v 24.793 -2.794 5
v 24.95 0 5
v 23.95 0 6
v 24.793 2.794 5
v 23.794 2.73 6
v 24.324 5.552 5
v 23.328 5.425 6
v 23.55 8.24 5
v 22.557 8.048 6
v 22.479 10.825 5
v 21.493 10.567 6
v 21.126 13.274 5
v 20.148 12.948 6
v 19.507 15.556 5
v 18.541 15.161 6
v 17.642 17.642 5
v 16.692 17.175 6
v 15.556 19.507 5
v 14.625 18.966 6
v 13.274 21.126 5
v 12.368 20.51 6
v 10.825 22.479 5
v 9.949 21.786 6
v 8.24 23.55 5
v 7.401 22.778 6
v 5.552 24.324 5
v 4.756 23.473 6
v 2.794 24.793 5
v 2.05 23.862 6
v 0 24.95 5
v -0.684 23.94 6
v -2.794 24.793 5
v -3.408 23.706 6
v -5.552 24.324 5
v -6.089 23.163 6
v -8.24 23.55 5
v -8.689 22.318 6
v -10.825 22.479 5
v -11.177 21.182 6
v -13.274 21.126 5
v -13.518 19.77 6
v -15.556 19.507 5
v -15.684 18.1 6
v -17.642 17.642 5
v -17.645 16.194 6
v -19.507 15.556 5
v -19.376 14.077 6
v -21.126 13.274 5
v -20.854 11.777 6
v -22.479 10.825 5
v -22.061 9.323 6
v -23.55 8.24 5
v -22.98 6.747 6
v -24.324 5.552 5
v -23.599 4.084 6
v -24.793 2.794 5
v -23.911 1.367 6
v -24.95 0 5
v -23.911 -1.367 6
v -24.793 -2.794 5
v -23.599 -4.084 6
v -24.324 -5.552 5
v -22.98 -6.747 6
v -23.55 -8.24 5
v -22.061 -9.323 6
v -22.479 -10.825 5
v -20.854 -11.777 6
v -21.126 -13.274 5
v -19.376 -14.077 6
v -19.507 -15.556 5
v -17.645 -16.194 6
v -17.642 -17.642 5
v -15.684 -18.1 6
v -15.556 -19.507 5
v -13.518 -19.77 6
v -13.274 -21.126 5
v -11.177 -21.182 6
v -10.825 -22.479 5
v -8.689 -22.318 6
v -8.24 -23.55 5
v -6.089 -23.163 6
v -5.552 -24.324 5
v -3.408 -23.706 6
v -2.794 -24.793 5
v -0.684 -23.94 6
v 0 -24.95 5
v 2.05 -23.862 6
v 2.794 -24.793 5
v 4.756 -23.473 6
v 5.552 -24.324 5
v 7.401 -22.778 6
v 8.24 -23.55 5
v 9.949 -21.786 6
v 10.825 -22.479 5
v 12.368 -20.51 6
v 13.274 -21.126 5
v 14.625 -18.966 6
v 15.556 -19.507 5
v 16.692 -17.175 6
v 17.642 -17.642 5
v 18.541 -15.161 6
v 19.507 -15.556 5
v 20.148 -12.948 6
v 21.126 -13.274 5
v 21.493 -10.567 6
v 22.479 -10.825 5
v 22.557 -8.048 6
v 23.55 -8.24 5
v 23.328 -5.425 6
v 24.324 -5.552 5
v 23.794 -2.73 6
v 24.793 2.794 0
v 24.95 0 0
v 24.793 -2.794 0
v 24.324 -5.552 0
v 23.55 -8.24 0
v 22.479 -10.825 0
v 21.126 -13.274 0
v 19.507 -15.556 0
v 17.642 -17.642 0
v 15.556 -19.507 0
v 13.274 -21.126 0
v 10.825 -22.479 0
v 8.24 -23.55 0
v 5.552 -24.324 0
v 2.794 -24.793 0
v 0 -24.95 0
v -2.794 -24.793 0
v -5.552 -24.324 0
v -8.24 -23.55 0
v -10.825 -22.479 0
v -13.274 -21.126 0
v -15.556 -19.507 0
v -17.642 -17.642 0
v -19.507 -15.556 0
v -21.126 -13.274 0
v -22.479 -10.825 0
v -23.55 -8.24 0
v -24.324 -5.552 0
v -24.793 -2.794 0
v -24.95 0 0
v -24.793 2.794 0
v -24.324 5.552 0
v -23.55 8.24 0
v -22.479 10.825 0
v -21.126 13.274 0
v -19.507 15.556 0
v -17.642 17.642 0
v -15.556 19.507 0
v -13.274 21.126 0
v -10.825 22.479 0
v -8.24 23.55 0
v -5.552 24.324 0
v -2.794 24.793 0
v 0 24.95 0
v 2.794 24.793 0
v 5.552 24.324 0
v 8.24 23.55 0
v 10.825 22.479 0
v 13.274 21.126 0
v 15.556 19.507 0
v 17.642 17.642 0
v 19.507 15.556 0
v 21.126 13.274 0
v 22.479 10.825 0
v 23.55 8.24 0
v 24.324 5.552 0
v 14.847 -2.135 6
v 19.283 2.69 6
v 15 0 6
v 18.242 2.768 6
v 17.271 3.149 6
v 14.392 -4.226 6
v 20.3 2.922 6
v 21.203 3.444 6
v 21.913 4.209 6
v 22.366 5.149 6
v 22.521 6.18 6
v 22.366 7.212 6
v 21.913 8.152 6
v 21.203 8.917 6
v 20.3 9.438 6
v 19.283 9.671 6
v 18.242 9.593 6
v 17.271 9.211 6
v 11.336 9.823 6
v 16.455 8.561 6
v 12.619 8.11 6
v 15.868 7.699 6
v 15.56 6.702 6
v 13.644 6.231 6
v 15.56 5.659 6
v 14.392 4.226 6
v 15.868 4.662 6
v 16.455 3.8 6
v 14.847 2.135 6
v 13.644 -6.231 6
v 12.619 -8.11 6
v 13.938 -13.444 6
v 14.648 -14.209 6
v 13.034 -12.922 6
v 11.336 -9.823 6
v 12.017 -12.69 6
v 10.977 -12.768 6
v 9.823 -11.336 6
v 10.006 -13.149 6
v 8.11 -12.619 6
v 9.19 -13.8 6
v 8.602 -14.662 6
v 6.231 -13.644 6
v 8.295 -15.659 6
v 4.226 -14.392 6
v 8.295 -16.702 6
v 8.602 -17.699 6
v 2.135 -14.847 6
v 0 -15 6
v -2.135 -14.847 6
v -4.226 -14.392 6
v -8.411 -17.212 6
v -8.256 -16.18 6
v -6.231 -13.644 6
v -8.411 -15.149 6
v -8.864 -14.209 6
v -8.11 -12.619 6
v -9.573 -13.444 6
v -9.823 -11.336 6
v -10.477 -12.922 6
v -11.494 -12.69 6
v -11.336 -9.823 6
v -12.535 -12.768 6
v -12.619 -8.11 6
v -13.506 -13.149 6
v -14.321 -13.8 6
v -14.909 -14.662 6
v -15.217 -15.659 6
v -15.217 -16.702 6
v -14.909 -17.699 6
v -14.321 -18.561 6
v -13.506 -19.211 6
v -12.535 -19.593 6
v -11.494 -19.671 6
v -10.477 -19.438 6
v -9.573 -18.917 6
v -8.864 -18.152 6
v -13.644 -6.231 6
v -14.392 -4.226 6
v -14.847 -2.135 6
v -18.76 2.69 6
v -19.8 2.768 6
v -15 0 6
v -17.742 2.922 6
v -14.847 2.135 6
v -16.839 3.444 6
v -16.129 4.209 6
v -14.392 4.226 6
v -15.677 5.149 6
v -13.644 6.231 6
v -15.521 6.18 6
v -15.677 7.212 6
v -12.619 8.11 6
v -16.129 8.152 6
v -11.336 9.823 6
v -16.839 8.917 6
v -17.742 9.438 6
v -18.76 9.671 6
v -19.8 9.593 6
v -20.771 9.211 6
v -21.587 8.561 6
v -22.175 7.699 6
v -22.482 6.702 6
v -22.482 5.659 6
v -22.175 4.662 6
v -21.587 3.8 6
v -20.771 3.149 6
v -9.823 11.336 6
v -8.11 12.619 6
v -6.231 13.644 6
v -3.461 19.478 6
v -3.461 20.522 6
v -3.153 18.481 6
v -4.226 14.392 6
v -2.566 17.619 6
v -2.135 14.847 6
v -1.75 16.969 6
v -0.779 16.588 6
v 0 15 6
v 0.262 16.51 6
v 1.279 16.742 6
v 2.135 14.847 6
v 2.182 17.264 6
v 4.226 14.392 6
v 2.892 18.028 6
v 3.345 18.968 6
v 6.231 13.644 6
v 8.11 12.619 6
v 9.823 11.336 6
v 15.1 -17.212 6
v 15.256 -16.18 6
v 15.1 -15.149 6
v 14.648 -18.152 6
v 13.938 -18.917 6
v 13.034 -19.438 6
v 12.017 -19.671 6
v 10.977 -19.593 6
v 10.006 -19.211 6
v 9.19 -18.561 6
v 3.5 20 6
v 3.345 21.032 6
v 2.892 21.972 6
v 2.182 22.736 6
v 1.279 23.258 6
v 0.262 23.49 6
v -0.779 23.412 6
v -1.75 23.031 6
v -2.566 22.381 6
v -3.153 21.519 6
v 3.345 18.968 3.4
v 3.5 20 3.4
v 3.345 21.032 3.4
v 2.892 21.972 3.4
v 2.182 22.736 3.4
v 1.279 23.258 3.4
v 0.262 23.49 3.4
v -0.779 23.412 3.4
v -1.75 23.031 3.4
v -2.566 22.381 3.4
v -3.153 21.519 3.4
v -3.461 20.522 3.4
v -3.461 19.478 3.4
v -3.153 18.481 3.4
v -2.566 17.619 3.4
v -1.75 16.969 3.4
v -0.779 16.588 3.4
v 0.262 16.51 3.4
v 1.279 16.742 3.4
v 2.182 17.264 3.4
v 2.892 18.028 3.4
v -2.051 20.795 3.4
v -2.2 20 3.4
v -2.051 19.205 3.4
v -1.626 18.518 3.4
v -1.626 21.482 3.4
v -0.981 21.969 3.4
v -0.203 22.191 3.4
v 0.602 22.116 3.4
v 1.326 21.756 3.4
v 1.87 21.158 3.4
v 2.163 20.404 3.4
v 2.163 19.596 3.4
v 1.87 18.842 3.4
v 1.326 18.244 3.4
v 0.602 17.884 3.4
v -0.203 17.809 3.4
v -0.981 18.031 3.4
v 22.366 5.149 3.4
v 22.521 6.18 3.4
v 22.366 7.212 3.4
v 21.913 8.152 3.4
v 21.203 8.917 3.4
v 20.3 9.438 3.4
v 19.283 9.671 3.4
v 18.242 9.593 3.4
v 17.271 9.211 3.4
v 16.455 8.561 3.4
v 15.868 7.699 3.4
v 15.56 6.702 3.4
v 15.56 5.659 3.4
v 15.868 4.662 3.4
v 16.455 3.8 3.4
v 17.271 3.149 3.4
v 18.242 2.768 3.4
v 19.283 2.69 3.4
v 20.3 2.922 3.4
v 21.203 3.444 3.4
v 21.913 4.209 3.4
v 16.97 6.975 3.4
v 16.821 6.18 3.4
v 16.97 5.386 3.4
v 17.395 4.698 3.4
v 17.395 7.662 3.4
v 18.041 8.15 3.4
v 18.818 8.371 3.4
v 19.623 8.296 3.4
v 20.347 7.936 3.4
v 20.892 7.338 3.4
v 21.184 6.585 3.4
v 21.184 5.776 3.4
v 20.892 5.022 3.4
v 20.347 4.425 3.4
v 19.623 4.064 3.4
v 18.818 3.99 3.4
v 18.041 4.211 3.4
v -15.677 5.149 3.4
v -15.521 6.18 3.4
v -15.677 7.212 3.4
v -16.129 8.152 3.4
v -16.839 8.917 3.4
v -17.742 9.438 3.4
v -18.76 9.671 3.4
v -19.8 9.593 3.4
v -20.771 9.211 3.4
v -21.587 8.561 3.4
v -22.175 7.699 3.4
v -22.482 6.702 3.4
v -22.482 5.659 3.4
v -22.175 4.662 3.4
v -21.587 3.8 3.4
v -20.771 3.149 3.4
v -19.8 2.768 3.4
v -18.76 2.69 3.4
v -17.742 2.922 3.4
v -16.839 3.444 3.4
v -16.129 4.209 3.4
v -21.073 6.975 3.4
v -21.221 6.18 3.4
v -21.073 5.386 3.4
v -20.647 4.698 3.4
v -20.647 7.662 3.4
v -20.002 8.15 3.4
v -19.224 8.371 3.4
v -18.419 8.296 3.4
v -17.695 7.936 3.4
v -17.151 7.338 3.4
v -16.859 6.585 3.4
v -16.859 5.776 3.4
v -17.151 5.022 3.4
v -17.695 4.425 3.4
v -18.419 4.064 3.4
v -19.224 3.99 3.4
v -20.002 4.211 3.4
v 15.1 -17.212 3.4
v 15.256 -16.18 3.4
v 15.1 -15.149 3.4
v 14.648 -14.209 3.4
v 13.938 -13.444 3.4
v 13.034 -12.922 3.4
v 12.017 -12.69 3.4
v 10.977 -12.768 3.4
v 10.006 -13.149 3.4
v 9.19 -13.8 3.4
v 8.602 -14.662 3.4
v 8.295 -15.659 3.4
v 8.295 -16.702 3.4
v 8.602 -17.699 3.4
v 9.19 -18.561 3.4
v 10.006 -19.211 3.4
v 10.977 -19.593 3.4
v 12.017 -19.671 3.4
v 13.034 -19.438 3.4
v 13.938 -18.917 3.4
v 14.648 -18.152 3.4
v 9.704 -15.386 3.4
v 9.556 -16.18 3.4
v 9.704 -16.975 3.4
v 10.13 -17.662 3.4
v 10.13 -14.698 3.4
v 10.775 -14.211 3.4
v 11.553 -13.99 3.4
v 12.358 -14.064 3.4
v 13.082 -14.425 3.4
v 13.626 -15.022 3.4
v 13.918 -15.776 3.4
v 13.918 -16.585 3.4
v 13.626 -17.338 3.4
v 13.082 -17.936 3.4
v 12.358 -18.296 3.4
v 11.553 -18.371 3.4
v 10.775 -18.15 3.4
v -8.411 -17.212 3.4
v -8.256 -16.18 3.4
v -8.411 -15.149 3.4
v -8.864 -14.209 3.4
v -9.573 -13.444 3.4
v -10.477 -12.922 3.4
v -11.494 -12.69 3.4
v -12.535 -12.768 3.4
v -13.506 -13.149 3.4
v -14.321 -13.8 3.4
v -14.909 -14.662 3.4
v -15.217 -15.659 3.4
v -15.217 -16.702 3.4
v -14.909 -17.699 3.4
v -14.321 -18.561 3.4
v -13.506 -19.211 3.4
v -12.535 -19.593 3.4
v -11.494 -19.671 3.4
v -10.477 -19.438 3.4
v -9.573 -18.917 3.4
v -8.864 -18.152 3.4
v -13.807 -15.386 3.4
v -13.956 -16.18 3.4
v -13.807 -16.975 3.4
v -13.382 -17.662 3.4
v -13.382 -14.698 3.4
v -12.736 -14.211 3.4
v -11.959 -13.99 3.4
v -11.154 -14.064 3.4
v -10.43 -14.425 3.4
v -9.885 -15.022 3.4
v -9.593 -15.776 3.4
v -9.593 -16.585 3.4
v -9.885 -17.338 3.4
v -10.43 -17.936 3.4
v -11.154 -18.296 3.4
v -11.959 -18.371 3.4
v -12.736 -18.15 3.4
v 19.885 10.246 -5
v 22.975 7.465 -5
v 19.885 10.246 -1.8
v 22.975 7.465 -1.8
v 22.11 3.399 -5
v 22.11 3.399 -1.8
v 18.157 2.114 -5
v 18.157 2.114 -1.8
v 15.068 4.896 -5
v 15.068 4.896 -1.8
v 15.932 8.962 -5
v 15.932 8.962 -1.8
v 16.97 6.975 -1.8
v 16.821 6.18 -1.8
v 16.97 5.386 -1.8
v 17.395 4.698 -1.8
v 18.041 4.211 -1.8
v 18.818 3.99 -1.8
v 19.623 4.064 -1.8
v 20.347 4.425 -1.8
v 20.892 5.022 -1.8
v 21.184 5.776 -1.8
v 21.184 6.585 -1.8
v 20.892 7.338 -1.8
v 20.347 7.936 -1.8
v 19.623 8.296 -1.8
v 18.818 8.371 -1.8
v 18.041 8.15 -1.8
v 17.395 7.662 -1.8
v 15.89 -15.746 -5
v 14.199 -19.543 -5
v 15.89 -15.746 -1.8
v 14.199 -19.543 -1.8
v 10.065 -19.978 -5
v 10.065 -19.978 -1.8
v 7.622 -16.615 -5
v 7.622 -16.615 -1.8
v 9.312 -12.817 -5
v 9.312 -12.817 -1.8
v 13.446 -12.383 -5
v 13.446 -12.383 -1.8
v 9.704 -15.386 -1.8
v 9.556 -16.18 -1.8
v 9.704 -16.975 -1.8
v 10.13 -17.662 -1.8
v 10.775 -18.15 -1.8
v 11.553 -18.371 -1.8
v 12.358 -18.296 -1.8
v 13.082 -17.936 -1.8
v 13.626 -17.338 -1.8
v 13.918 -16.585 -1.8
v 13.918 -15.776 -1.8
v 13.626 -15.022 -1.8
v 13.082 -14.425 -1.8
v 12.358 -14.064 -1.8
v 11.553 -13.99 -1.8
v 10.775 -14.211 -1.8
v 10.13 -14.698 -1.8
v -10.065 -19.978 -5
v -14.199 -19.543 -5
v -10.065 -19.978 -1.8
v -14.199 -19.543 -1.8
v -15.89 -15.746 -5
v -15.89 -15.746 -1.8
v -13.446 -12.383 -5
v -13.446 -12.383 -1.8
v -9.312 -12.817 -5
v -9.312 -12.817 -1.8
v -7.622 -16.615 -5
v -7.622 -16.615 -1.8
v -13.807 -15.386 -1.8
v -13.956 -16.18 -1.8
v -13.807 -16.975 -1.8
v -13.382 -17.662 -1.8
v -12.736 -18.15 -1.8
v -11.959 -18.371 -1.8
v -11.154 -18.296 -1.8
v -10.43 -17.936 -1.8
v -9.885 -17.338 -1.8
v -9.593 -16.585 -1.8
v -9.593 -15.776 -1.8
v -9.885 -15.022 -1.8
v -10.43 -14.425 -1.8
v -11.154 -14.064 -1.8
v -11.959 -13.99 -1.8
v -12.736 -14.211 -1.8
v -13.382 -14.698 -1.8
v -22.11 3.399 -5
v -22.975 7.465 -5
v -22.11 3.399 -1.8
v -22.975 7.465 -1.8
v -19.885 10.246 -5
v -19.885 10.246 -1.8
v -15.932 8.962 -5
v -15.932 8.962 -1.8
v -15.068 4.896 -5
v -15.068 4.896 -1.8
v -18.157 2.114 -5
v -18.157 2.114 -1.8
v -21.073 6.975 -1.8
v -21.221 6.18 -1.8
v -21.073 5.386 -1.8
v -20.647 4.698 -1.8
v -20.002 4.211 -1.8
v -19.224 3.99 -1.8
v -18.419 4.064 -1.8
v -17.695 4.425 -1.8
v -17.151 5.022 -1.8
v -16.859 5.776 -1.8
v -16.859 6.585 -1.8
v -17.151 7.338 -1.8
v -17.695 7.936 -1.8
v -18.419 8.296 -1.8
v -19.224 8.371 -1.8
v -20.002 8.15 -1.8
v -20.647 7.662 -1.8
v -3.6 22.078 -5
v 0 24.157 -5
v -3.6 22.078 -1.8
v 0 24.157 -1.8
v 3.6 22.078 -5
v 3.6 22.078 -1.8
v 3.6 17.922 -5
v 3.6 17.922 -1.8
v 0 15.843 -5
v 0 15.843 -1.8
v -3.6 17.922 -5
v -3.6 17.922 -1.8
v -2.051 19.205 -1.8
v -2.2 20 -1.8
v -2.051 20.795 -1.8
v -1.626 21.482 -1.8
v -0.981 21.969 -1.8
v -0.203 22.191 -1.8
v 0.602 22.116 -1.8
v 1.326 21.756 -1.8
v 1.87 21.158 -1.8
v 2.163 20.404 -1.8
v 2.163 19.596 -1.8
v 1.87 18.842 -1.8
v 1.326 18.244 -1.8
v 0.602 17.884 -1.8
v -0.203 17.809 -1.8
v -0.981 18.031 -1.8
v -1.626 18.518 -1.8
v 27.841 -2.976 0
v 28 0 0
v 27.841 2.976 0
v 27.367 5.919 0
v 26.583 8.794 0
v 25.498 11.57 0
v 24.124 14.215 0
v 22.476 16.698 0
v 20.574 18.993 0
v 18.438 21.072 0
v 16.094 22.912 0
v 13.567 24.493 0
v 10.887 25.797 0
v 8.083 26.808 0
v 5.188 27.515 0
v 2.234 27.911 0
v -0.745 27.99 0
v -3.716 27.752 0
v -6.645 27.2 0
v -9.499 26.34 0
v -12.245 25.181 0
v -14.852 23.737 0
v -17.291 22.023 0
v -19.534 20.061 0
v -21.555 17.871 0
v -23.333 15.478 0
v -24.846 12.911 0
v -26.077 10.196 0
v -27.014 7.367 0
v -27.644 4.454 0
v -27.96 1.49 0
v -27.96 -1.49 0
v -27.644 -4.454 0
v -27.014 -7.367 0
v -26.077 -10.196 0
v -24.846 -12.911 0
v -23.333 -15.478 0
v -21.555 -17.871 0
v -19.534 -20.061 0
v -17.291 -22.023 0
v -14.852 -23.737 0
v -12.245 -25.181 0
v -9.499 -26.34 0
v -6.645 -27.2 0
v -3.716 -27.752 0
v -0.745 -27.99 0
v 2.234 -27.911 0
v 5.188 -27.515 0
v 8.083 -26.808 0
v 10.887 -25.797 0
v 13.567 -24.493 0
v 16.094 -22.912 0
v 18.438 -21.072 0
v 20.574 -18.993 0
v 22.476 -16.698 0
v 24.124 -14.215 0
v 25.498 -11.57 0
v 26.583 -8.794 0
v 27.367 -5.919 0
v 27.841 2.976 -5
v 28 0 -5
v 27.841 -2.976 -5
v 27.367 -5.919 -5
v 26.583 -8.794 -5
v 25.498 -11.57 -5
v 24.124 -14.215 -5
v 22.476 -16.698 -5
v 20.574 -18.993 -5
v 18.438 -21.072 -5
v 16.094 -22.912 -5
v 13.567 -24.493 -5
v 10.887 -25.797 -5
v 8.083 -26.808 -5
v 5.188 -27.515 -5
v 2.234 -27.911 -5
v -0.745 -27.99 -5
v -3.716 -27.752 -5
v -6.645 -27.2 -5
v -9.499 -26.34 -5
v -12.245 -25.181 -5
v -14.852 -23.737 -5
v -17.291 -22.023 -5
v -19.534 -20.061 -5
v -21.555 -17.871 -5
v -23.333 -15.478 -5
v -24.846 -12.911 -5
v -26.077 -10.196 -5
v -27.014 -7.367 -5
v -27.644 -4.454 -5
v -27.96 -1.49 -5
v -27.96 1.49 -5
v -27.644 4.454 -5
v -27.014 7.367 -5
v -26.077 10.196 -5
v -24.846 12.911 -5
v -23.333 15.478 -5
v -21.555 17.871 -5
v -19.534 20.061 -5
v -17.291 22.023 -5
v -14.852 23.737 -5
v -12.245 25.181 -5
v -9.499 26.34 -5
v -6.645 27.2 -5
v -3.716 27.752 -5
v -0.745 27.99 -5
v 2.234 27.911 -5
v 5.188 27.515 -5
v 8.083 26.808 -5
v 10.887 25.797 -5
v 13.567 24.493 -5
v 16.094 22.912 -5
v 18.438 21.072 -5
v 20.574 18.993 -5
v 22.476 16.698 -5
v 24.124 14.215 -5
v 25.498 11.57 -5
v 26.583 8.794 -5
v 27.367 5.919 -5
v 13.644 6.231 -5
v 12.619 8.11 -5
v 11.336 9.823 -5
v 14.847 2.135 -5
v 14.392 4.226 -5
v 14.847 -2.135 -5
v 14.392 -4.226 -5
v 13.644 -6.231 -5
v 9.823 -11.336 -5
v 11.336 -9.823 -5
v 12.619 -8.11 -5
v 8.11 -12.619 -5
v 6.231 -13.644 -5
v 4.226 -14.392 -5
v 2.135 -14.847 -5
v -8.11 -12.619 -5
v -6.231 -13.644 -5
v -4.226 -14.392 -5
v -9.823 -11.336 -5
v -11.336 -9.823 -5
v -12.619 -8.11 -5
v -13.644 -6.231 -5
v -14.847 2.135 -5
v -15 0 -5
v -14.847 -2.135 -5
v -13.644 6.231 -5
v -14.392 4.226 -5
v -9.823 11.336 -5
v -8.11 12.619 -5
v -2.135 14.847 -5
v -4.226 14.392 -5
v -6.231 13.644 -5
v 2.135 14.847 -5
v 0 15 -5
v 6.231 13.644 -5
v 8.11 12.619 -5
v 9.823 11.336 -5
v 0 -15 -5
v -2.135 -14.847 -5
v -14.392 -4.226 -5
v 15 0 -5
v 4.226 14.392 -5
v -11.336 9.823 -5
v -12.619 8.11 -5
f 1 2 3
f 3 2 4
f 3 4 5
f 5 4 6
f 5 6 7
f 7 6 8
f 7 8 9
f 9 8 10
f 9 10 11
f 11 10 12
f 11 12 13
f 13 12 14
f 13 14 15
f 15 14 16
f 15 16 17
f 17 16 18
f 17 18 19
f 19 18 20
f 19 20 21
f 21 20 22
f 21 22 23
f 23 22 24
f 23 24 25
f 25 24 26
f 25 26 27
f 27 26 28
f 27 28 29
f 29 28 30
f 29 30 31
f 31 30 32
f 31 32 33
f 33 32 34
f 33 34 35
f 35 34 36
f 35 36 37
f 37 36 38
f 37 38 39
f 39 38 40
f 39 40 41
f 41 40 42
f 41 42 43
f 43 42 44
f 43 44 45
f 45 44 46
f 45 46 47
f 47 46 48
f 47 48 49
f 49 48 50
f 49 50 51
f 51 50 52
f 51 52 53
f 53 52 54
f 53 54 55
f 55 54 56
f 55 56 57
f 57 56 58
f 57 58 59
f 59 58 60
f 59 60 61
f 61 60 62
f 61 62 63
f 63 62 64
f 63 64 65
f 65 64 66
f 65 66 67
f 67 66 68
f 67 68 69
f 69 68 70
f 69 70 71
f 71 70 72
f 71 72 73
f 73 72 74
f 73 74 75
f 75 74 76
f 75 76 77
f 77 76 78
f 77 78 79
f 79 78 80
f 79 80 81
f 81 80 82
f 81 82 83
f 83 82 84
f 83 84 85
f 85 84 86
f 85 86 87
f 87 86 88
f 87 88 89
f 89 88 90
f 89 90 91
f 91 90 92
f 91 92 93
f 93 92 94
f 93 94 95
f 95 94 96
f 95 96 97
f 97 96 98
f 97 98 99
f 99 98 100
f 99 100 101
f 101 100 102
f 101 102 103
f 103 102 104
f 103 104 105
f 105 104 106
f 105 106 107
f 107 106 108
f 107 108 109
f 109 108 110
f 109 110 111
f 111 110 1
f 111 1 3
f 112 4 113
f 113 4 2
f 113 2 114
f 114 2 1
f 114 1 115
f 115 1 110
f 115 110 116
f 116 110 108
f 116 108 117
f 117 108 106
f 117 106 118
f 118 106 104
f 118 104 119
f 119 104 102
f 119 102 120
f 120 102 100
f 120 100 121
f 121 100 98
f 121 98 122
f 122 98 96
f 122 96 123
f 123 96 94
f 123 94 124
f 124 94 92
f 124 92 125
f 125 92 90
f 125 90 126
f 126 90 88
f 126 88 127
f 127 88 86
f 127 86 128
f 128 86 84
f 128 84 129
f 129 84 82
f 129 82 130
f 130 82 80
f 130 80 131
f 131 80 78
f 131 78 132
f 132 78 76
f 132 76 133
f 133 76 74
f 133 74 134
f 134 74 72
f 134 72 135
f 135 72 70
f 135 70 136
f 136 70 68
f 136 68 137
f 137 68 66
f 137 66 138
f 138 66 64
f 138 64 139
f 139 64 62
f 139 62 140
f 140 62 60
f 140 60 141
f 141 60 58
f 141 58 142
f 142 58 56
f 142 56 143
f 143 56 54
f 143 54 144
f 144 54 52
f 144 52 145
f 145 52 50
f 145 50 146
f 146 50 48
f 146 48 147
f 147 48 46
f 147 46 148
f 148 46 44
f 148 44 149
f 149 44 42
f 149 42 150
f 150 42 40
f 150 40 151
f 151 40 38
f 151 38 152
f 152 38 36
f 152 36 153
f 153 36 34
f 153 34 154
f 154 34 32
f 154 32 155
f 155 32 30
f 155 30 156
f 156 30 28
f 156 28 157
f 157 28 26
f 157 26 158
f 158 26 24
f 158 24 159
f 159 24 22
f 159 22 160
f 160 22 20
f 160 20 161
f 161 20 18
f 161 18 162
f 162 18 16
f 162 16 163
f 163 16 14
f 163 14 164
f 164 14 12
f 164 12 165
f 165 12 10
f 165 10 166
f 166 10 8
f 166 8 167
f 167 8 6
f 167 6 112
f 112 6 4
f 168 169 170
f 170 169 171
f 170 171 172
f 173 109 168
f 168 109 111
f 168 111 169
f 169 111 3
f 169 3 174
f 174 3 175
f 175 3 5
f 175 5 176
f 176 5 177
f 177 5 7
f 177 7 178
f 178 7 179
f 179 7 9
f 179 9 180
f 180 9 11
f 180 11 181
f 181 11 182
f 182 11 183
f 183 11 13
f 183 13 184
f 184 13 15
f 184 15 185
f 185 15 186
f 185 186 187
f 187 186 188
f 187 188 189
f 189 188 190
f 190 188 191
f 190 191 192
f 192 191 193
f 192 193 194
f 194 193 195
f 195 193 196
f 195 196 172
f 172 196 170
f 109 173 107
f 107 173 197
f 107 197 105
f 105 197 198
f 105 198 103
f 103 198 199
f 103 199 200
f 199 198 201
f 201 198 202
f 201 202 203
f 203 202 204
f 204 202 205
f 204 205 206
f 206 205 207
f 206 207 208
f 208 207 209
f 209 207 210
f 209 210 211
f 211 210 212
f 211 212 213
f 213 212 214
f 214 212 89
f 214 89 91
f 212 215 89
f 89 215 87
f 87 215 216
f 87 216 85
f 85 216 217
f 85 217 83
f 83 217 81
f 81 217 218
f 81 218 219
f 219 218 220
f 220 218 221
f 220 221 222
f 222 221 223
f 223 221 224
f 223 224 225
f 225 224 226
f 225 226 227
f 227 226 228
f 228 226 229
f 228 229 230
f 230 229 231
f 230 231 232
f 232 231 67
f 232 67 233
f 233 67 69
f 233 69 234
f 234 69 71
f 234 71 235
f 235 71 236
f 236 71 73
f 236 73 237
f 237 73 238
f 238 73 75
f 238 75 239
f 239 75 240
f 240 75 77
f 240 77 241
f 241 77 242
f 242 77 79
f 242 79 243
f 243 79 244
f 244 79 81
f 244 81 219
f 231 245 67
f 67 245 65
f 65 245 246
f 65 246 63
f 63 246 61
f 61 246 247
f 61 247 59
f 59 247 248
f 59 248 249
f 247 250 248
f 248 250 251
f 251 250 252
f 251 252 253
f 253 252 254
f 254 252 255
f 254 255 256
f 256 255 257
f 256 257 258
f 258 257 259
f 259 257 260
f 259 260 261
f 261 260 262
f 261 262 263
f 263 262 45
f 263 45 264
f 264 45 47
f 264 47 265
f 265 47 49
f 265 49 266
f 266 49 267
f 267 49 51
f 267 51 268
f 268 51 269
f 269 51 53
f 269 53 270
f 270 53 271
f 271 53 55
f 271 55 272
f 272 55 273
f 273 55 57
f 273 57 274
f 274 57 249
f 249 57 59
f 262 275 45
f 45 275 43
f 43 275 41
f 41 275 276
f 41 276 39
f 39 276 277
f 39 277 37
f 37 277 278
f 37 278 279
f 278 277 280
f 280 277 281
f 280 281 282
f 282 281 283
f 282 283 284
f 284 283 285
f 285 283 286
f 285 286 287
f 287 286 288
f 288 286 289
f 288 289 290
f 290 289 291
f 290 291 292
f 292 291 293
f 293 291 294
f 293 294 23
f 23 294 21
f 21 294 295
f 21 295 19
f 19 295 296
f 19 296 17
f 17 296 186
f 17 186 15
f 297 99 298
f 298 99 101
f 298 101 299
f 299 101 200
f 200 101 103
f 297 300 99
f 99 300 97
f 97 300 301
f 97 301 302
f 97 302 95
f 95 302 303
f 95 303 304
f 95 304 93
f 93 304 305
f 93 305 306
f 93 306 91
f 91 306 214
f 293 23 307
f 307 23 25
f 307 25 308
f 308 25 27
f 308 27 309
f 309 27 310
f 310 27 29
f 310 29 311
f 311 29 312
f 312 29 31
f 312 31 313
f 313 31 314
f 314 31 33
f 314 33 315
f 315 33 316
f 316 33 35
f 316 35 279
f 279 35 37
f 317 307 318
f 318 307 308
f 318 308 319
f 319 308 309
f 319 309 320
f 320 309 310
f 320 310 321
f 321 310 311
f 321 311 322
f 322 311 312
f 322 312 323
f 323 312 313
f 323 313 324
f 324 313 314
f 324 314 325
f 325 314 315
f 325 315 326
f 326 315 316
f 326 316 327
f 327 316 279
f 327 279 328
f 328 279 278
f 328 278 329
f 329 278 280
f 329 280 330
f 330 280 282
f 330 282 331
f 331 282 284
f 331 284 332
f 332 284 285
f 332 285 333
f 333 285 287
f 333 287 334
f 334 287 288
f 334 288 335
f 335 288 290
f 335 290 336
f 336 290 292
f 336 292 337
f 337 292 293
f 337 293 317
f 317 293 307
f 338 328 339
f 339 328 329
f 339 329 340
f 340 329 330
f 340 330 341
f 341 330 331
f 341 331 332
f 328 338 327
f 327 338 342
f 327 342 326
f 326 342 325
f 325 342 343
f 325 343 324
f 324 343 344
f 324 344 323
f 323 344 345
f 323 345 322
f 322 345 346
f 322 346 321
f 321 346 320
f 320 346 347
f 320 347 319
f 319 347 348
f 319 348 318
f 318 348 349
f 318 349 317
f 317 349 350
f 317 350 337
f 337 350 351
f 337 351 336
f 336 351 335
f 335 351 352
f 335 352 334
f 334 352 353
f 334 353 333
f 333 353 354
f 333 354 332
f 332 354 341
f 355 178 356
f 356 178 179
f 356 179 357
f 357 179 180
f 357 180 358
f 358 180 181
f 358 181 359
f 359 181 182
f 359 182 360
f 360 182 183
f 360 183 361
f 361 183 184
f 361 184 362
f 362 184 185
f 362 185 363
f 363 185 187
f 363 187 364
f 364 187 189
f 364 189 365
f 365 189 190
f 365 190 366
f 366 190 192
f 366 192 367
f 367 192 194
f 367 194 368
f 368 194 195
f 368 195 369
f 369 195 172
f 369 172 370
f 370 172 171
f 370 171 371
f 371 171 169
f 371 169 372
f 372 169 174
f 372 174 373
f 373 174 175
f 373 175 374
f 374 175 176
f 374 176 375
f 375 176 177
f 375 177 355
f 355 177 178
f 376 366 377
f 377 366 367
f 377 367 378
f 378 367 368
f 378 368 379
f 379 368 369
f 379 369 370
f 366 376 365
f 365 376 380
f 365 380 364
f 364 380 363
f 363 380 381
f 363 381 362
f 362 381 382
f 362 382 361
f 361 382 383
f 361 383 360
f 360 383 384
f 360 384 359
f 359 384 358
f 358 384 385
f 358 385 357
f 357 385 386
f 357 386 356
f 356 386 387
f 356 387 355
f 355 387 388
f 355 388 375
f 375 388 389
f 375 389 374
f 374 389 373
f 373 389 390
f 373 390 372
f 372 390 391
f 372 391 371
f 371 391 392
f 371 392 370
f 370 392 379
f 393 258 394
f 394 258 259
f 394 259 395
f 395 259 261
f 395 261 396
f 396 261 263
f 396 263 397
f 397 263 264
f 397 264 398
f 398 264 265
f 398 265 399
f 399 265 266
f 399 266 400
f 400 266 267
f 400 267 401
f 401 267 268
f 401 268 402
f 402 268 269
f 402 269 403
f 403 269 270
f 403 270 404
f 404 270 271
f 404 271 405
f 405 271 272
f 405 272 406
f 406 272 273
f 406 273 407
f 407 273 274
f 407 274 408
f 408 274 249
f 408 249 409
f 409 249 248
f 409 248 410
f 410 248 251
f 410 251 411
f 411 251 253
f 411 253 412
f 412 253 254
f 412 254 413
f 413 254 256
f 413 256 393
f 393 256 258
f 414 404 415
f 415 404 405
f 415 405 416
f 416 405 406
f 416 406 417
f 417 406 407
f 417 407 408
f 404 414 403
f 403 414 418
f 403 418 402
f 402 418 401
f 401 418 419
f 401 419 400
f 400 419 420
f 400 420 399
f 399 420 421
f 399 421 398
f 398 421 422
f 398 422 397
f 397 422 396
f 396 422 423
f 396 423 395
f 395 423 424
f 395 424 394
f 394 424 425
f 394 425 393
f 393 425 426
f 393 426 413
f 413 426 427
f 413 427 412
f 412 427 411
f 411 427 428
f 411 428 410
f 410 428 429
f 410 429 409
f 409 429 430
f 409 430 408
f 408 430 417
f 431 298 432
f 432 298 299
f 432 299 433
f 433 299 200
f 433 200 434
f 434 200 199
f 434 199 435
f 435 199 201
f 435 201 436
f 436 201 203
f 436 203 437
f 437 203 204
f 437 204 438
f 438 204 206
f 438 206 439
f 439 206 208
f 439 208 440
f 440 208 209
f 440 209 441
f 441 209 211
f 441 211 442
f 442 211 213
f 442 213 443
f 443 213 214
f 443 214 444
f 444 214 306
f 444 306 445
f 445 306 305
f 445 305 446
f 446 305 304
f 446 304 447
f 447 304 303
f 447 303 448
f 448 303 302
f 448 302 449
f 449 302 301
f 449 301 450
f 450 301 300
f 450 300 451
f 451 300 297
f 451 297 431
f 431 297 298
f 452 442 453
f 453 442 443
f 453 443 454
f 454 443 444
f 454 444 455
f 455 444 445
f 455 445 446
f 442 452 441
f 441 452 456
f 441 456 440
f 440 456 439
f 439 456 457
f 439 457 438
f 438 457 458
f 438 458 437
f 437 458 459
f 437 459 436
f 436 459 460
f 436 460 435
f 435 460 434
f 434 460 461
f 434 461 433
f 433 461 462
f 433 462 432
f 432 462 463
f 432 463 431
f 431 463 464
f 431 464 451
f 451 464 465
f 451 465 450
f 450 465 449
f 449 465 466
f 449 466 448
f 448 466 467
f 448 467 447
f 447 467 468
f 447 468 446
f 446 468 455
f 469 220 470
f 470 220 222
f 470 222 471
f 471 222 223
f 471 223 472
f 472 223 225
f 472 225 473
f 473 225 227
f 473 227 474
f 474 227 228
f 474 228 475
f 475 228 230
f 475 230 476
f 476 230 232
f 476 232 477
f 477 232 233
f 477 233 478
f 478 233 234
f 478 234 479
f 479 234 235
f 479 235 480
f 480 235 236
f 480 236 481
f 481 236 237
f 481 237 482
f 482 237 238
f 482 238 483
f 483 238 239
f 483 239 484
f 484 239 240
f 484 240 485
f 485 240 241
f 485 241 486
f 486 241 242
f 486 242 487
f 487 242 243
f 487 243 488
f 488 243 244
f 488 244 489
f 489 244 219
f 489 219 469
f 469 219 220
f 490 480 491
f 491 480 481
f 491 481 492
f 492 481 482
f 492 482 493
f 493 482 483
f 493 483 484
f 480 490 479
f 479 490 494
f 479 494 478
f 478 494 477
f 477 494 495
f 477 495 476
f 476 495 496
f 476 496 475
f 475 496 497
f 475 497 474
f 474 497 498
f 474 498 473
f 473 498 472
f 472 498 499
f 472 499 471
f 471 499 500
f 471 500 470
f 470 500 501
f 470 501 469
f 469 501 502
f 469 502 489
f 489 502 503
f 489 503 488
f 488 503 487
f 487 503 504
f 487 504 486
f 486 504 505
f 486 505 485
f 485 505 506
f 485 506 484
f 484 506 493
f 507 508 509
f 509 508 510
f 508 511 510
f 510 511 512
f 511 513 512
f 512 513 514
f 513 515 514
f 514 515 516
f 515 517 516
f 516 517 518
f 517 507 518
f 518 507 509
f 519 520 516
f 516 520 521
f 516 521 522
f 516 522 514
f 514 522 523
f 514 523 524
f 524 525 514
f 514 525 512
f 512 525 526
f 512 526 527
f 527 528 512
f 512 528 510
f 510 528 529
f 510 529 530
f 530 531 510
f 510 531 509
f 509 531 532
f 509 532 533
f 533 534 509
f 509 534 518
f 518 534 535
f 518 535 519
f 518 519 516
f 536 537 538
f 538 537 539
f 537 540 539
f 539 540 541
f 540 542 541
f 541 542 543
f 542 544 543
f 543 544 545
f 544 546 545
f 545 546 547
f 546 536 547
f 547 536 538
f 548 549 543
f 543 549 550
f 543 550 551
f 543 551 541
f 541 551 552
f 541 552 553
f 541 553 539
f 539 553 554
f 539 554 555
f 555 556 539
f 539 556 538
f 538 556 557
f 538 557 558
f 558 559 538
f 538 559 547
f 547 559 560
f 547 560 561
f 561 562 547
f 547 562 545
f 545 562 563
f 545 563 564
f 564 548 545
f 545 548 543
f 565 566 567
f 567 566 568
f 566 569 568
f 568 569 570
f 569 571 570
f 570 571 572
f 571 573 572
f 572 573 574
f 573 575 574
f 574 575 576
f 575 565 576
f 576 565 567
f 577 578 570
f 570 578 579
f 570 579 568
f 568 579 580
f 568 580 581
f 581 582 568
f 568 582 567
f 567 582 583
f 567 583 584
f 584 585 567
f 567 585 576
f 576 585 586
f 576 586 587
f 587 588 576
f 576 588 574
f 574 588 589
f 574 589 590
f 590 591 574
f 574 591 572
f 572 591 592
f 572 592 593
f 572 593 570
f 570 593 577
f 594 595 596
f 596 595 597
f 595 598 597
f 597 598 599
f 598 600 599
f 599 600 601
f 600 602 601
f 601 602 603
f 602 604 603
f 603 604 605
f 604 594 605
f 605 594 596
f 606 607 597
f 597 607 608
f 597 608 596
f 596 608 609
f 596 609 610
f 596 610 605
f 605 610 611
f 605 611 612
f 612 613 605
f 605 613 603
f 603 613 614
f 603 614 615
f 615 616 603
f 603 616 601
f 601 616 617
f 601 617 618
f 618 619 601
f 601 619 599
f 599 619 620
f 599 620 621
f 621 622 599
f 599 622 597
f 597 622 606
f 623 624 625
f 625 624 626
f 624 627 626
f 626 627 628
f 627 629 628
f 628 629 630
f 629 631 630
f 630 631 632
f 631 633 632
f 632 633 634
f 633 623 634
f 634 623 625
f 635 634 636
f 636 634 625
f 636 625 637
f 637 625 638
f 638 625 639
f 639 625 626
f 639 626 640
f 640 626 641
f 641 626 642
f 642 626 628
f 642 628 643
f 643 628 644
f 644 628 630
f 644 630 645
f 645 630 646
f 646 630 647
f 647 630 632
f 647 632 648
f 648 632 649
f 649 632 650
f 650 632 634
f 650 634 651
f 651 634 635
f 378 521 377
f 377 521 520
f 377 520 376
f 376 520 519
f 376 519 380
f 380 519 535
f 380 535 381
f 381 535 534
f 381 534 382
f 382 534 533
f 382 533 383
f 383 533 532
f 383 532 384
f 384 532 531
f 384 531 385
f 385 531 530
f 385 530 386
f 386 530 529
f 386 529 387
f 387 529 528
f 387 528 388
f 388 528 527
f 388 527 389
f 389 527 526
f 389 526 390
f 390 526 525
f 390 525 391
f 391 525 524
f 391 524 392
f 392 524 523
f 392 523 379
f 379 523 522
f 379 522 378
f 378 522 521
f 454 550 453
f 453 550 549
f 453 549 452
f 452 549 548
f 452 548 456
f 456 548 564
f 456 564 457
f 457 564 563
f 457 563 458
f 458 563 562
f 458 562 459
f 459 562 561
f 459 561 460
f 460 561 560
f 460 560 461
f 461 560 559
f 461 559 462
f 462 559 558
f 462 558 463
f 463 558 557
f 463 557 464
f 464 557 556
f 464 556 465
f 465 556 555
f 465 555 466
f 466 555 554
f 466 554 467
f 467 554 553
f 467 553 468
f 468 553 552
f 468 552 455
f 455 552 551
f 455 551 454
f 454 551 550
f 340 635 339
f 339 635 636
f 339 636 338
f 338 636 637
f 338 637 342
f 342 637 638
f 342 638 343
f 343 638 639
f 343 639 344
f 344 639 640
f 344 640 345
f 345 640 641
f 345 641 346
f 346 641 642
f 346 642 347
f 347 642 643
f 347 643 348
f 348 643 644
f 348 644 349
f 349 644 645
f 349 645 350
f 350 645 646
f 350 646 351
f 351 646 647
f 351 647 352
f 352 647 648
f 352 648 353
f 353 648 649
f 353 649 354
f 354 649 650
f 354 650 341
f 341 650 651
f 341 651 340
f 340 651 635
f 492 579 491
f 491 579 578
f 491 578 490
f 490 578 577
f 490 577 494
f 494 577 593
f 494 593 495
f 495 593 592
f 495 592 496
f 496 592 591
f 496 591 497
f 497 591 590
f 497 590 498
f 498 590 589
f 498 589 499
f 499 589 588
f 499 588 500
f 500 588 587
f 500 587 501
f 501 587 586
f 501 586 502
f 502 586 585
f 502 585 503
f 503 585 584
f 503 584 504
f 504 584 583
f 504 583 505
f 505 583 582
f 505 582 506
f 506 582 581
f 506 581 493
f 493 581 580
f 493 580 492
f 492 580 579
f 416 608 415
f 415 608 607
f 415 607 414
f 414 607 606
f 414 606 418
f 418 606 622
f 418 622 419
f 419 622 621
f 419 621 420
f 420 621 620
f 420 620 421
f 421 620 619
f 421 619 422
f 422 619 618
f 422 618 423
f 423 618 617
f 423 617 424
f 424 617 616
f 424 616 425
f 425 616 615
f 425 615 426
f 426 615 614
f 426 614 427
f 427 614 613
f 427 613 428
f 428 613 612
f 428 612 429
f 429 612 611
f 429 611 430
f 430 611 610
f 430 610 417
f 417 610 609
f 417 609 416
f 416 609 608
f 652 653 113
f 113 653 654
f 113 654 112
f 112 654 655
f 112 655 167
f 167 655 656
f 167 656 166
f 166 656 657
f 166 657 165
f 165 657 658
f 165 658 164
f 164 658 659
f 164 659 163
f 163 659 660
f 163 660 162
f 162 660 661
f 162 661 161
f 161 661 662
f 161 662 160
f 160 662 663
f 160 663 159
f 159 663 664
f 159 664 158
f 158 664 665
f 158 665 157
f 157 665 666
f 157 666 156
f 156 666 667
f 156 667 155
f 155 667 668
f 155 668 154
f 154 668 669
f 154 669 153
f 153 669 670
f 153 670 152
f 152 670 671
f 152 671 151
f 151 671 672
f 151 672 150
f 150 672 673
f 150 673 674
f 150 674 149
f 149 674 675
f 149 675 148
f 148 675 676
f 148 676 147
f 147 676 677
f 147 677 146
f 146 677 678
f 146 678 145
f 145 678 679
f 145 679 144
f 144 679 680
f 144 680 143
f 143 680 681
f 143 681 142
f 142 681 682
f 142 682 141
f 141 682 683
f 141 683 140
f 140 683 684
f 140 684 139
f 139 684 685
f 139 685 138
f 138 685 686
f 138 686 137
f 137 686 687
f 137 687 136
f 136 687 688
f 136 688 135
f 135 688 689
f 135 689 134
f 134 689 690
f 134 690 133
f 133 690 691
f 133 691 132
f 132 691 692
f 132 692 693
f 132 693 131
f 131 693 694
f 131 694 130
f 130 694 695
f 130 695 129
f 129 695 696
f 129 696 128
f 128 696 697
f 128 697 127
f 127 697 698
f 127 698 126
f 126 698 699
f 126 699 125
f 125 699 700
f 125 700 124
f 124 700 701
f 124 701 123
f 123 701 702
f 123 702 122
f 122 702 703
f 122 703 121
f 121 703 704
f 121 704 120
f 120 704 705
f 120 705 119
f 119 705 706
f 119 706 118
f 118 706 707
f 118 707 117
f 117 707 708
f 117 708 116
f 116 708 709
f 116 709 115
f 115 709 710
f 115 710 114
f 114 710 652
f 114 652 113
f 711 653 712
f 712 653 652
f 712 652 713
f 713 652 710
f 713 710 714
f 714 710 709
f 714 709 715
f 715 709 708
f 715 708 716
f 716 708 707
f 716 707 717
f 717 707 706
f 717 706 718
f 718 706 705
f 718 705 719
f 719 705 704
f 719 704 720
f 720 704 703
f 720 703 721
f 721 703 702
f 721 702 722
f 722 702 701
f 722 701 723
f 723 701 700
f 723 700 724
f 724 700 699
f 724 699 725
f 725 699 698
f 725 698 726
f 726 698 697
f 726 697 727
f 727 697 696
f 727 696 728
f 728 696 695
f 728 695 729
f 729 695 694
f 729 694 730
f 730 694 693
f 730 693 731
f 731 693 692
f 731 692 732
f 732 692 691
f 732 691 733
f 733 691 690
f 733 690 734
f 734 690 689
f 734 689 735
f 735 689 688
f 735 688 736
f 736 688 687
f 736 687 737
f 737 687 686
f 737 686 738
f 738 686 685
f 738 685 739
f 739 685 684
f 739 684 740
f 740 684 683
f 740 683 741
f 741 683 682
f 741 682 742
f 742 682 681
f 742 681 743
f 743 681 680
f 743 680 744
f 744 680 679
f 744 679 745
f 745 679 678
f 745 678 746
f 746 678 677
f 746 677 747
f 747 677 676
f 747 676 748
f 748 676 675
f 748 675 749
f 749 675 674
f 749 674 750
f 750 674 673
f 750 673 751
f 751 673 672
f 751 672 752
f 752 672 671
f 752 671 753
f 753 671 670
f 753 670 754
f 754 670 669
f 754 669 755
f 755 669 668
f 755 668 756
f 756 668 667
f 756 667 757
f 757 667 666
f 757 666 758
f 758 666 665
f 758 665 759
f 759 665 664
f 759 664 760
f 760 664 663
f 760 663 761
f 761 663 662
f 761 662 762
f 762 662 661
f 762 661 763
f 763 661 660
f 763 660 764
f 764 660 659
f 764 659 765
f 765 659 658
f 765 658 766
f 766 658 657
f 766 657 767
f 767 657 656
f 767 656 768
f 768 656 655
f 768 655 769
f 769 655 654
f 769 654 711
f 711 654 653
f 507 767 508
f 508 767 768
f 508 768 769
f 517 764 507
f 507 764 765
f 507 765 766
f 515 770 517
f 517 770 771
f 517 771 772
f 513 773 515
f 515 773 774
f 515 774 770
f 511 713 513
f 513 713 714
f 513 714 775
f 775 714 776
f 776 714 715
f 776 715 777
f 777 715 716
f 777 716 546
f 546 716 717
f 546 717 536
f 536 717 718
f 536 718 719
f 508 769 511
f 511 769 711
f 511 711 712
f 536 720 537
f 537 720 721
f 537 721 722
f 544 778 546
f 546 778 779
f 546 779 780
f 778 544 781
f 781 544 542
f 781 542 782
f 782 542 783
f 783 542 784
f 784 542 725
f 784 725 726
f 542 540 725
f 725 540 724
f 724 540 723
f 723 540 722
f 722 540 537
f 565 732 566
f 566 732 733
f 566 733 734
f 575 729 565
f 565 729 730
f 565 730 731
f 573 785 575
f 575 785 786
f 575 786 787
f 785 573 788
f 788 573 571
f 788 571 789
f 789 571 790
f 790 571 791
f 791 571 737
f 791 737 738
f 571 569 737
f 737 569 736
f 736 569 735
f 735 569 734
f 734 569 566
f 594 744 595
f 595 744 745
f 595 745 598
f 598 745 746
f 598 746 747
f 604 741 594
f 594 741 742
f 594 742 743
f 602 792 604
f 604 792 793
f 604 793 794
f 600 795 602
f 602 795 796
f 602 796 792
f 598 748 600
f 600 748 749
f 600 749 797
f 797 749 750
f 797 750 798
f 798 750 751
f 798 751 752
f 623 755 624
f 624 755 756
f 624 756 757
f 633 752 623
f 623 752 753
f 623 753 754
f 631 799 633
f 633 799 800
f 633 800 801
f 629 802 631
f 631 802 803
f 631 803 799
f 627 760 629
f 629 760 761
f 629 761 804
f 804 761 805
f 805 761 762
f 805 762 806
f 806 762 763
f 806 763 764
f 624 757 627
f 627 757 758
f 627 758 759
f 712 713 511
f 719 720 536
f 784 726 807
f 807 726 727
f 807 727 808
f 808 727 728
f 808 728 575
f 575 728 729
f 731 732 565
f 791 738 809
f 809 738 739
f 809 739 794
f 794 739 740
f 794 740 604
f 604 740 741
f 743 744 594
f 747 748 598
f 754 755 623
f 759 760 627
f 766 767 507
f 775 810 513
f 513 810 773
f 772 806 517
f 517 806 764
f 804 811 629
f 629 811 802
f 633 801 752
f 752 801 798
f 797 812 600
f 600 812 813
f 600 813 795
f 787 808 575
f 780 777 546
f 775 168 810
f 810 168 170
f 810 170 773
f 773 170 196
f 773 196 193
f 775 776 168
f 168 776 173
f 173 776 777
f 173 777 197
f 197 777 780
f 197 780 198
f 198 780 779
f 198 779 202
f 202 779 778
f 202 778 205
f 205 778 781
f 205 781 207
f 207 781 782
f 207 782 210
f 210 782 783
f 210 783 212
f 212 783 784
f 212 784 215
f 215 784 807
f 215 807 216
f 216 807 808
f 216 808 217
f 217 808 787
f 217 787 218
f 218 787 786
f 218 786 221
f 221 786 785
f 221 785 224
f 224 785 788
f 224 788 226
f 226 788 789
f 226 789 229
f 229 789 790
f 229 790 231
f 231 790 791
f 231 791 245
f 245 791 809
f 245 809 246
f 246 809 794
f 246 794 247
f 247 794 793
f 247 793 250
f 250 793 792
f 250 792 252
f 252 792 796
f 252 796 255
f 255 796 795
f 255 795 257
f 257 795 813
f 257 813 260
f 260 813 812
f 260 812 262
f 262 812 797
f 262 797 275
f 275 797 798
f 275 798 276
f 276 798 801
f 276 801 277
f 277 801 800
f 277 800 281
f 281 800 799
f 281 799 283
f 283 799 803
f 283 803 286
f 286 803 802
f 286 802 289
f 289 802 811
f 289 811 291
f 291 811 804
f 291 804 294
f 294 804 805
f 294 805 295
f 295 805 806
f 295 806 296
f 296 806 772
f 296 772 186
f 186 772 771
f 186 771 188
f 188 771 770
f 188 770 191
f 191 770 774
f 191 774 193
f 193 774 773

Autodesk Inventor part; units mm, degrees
ref_plane "YZ Plane" through (0, 0, 0) normal (1, 0, 0) x (0, 1, 0)
ref_plane "XZ Plane" through (0, 0, 0) normal (0, 1, 0) x (-1, 0, 0)
ref_plane "XY Plane" through (0, 0, 0) normal (0, 0, 1) x (1, 0, 0)
sketch "스케치1" plane through (0, 0, 0) normal (0, 0, 1) x (1, 0, 0)
  circle A0 centre (0, 0) radius 24.95
  circle A1 centre (0, 0) radius 28
  circle A2 centre (0, 0) radius 15
  dimension "d0" = 49.9
  dimension "d1" = 56
  dimension "d2" = 30
extrude "돌출1" add sketch "스케치1" along normal blind 6 contours A0
extrude "돌출2" add sketch "스케치1" against normal blind 5 contours A0 | A1
sketch "스케치3" plane through (0, 0, 6) normal (0, 0, 1) x (1, 0, 0)
  circle A0 centre (0, 0) radius 20 construction
  circle A1 centre (0, 20) radius 2.2
  circle A2 centre (-19.0211, 6.1803) radius 2.2
  circle A3 centre (-11.7557, -16.1803) radius 2.2
  circle A4 centre (11.7557, -16.1803) radius 2.2
  circle A5 centre (19.0211, 6.1803) radius 2.2
  dimension "d9" = 40
  dimension "d10" = 4.4
  dimension "d13" = 360
extrude "돌출3" cut sketch "스케치3" against normal blind 44.5
sketch "스케치4" plane through (0, 0, -5) normal (0, 0, -1) x (-1, 0, 0)
  circle A0 centre (0, 20) radius 2.2 projected
  line L0 (0, 15.8431) -> (-3.6, 17.9215)
  line L1 (-3.6, 17.9215) -> (-3.6, 22.0785)
  line L2 (-3.6, 22.0785) -> (0, 24.1569)
  line L3 (0, 24.1569) -> (3.6, 22.0785)
  line L4 (3.6, 22.0785) -> (3.6, 17.9215)
  line L5 (3.6, 17.9215) -> (0, 15.8431)
  point P0 (0, 0)
  dimension "d19" = 7.2
extrude "돌출4" cut sketch "스케치4" against normal blind 3.2 contours A0 | L0 L1 L2 L3 L4 L5
pattern_circular "원형 패턴1" count 5 over 360 about axis through (0, 0, 0) along (0, 0, 1) of "돌출4"
sketch "스케치6" plane through (0, 0, 6) normal (0, 0, 1) x (1, 0, 0)
  circle A0 centre (0, 20) radius 2.2 projected
  circle A1 centre (0, 20) radius 3.5
  circle A2 centre (-19.0211, 6.1803) radius 3.5
  circle A3 centre (-11.7557, -16.1803) radius 3.5
  circle A4 centre (11.7557, -16.1803) radius 3.5
  circle A5 centre (19.0211, 6.1803) radius 3.5
  point P0 (0, 0)
  dimension "d26" = 7
  dimension "d29" = 360
extrude "돌출5" cut sketch "스케치6" against normal blind 2.6 contours A0 | A1 | A2 | A3 | A4 | A5
chamfer "모따기2" distance 1 angle 45 1 edges at (-24.95, 0, 6)
properties part number "사이클로이드 기어 축 연결 하우징"
